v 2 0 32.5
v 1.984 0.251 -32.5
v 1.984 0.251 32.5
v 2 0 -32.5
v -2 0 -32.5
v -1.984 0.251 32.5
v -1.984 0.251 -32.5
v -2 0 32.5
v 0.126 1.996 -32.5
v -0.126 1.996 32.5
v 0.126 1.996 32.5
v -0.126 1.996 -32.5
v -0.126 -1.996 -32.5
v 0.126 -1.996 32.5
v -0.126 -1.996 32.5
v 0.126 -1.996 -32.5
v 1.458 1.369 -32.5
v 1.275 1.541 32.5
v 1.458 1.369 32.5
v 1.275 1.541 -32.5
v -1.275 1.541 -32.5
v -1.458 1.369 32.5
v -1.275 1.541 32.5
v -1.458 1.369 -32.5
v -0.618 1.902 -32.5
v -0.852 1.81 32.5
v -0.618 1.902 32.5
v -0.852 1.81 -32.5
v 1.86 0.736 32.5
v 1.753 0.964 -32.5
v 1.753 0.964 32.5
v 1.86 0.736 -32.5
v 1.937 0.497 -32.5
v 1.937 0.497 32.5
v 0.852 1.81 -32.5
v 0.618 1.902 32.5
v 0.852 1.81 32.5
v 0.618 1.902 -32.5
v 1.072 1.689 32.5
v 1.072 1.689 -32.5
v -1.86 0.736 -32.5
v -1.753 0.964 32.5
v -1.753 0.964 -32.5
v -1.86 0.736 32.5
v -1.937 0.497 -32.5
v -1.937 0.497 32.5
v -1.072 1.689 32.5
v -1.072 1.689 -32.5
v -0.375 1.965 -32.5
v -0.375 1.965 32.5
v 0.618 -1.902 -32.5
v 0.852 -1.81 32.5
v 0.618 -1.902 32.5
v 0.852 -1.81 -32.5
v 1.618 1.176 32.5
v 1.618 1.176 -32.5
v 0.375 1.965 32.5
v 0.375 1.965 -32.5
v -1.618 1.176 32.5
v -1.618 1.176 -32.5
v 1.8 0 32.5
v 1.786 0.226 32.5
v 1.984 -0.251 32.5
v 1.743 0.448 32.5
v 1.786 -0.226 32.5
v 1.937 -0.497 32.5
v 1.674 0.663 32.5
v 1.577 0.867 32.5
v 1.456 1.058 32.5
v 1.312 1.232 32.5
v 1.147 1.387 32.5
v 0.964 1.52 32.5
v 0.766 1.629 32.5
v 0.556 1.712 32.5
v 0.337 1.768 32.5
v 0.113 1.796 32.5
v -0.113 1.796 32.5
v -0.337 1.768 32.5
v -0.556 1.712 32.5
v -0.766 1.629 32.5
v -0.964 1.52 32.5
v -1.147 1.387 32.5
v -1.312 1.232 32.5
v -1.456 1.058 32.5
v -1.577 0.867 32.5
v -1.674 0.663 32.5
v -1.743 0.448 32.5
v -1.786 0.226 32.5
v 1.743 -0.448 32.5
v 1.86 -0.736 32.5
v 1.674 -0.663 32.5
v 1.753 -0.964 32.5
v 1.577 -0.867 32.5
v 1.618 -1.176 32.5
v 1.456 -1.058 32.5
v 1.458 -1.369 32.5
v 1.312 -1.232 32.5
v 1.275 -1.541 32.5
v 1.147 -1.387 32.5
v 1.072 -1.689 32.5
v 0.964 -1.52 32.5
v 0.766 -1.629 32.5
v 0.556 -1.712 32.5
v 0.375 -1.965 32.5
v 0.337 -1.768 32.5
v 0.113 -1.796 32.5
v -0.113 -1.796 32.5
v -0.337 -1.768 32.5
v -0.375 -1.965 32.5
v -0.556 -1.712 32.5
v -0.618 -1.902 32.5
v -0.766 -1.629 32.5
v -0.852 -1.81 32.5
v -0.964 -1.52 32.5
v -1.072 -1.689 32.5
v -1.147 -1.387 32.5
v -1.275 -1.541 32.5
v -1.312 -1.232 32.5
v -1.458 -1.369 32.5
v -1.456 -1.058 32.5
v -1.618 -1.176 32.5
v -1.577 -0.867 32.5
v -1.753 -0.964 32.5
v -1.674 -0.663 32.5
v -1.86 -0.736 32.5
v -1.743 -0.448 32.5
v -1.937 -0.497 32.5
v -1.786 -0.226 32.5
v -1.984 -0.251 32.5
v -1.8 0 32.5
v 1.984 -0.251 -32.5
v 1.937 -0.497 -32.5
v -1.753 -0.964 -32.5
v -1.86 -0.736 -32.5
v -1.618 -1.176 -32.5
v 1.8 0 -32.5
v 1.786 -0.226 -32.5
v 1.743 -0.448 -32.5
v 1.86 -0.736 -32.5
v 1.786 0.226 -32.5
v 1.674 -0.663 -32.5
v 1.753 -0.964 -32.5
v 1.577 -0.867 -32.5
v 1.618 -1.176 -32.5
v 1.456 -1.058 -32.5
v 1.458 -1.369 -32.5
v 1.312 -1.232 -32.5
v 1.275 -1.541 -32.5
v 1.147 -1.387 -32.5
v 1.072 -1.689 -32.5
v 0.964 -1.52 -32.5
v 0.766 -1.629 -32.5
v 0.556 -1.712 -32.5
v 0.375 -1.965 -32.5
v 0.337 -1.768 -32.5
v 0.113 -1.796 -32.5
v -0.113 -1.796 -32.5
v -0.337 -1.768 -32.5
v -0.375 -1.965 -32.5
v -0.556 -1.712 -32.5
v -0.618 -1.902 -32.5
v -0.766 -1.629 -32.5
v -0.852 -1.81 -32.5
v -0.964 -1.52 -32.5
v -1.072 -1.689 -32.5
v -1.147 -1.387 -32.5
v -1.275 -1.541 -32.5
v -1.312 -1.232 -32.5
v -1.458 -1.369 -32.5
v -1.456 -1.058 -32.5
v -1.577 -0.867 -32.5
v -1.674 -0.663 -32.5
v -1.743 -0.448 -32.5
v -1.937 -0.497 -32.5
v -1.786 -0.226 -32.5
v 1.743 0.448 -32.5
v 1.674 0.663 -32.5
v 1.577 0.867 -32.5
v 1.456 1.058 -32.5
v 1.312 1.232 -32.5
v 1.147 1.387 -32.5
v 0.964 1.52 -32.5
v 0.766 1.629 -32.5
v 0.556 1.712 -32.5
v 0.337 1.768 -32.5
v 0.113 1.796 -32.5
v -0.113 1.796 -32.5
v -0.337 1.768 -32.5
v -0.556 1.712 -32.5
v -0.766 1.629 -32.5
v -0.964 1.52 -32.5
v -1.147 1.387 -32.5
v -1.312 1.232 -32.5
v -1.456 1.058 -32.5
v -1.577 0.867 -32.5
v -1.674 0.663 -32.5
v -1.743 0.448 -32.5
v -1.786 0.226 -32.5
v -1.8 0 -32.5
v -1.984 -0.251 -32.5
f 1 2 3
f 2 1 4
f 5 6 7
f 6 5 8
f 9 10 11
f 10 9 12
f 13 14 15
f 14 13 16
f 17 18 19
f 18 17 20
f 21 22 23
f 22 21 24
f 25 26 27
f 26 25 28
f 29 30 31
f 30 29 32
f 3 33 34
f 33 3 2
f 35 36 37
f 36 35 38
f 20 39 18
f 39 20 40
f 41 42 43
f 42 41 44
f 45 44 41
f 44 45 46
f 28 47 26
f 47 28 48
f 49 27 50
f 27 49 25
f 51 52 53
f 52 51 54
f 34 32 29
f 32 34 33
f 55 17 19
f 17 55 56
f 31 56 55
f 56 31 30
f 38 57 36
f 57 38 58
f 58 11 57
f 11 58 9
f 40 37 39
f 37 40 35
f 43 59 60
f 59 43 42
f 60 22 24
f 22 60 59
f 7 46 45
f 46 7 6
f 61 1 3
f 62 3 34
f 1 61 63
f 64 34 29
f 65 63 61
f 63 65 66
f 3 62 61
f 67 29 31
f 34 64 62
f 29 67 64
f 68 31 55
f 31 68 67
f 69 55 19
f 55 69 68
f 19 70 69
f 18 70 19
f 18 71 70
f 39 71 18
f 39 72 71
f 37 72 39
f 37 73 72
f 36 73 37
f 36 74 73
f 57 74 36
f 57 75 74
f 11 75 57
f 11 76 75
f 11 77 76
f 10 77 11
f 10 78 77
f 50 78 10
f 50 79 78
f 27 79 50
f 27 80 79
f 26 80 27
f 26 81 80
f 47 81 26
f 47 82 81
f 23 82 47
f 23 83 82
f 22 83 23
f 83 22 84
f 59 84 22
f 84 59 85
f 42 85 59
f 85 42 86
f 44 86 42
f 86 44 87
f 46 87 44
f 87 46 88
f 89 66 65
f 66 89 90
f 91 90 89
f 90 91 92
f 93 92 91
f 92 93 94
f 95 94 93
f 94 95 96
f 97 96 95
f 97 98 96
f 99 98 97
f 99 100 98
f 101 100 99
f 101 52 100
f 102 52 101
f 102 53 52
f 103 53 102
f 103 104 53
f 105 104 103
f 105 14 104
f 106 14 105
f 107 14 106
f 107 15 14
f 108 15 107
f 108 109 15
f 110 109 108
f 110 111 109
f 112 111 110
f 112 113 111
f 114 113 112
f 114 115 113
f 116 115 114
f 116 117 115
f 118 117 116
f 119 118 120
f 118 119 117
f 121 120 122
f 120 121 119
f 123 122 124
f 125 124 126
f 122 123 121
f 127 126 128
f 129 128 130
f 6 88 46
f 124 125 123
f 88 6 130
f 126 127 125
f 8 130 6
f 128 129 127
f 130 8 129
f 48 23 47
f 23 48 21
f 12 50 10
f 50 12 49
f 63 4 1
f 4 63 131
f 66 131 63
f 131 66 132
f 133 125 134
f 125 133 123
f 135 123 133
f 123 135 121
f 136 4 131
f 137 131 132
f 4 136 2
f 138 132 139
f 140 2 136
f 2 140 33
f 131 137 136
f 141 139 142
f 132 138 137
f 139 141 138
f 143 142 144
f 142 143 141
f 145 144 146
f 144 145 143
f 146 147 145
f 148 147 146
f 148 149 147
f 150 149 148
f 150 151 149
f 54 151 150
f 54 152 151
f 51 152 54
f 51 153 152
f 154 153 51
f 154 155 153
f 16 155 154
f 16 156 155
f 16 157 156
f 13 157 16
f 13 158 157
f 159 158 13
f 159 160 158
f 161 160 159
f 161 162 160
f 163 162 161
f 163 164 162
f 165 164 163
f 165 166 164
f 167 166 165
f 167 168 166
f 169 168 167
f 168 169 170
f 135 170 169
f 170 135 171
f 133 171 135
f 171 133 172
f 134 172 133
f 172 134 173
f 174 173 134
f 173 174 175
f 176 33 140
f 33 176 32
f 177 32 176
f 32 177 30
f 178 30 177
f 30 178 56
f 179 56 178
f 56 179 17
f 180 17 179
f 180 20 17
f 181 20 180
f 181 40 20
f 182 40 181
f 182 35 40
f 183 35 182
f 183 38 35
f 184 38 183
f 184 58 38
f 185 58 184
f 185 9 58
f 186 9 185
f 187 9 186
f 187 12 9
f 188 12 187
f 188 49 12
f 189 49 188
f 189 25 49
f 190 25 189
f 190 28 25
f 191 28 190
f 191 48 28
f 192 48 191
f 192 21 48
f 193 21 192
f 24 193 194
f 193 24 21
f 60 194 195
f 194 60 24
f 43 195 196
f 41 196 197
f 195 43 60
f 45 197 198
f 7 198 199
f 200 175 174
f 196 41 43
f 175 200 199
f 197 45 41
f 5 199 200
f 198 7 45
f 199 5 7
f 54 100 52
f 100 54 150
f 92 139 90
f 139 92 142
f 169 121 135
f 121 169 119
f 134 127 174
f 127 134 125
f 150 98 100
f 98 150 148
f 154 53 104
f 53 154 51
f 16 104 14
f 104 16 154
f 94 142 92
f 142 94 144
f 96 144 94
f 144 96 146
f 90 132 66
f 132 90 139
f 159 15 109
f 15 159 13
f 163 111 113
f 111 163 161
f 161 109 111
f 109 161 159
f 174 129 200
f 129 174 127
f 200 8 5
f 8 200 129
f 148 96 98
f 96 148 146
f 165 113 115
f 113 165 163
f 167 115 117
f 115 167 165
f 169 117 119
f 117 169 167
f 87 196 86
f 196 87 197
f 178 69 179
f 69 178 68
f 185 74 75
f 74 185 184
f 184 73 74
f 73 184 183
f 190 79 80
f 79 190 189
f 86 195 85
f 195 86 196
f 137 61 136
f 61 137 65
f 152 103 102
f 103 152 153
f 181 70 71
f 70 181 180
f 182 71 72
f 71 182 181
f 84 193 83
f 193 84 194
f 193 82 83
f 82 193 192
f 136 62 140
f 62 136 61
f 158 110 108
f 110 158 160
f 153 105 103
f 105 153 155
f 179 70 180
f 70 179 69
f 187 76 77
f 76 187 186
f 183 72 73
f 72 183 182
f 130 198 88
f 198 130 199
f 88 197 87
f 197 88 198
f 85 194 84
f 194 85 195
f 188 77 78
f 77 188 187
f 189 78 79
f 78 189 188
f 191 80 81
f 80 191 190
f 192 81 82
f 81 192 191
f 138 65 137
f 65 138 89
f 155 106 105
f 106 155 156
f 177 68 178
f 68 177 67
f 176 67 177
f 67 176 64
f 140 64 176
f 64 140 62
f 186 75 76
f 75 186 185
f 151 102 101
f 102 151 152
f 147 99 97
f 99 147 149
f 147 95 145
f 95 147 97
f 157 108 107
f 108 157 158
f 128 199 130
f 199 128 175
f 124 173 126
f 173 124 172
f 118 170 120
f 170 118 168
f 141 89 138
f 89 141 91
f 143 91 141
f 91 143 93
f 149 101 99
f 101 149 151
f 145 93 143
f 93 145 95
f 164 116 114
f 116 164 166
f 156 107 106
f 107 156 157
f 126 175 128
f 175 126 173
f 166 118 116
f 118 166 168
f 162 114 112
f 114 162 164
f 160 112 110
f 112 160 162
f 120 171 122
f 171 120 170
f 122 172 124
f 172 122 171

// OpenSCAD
$fn = 50;


difference() {
	union() {
		translate(v = [0, 0, -32.5000000000]) {
			cylinder(h = 65, r = 2.0000000000);
		}
	}
	union() {
		translate(v = [0, 0, -100.0000000000]) {
			cylinder(h = 200, r = 1.8000000000);
		}
	}
}
